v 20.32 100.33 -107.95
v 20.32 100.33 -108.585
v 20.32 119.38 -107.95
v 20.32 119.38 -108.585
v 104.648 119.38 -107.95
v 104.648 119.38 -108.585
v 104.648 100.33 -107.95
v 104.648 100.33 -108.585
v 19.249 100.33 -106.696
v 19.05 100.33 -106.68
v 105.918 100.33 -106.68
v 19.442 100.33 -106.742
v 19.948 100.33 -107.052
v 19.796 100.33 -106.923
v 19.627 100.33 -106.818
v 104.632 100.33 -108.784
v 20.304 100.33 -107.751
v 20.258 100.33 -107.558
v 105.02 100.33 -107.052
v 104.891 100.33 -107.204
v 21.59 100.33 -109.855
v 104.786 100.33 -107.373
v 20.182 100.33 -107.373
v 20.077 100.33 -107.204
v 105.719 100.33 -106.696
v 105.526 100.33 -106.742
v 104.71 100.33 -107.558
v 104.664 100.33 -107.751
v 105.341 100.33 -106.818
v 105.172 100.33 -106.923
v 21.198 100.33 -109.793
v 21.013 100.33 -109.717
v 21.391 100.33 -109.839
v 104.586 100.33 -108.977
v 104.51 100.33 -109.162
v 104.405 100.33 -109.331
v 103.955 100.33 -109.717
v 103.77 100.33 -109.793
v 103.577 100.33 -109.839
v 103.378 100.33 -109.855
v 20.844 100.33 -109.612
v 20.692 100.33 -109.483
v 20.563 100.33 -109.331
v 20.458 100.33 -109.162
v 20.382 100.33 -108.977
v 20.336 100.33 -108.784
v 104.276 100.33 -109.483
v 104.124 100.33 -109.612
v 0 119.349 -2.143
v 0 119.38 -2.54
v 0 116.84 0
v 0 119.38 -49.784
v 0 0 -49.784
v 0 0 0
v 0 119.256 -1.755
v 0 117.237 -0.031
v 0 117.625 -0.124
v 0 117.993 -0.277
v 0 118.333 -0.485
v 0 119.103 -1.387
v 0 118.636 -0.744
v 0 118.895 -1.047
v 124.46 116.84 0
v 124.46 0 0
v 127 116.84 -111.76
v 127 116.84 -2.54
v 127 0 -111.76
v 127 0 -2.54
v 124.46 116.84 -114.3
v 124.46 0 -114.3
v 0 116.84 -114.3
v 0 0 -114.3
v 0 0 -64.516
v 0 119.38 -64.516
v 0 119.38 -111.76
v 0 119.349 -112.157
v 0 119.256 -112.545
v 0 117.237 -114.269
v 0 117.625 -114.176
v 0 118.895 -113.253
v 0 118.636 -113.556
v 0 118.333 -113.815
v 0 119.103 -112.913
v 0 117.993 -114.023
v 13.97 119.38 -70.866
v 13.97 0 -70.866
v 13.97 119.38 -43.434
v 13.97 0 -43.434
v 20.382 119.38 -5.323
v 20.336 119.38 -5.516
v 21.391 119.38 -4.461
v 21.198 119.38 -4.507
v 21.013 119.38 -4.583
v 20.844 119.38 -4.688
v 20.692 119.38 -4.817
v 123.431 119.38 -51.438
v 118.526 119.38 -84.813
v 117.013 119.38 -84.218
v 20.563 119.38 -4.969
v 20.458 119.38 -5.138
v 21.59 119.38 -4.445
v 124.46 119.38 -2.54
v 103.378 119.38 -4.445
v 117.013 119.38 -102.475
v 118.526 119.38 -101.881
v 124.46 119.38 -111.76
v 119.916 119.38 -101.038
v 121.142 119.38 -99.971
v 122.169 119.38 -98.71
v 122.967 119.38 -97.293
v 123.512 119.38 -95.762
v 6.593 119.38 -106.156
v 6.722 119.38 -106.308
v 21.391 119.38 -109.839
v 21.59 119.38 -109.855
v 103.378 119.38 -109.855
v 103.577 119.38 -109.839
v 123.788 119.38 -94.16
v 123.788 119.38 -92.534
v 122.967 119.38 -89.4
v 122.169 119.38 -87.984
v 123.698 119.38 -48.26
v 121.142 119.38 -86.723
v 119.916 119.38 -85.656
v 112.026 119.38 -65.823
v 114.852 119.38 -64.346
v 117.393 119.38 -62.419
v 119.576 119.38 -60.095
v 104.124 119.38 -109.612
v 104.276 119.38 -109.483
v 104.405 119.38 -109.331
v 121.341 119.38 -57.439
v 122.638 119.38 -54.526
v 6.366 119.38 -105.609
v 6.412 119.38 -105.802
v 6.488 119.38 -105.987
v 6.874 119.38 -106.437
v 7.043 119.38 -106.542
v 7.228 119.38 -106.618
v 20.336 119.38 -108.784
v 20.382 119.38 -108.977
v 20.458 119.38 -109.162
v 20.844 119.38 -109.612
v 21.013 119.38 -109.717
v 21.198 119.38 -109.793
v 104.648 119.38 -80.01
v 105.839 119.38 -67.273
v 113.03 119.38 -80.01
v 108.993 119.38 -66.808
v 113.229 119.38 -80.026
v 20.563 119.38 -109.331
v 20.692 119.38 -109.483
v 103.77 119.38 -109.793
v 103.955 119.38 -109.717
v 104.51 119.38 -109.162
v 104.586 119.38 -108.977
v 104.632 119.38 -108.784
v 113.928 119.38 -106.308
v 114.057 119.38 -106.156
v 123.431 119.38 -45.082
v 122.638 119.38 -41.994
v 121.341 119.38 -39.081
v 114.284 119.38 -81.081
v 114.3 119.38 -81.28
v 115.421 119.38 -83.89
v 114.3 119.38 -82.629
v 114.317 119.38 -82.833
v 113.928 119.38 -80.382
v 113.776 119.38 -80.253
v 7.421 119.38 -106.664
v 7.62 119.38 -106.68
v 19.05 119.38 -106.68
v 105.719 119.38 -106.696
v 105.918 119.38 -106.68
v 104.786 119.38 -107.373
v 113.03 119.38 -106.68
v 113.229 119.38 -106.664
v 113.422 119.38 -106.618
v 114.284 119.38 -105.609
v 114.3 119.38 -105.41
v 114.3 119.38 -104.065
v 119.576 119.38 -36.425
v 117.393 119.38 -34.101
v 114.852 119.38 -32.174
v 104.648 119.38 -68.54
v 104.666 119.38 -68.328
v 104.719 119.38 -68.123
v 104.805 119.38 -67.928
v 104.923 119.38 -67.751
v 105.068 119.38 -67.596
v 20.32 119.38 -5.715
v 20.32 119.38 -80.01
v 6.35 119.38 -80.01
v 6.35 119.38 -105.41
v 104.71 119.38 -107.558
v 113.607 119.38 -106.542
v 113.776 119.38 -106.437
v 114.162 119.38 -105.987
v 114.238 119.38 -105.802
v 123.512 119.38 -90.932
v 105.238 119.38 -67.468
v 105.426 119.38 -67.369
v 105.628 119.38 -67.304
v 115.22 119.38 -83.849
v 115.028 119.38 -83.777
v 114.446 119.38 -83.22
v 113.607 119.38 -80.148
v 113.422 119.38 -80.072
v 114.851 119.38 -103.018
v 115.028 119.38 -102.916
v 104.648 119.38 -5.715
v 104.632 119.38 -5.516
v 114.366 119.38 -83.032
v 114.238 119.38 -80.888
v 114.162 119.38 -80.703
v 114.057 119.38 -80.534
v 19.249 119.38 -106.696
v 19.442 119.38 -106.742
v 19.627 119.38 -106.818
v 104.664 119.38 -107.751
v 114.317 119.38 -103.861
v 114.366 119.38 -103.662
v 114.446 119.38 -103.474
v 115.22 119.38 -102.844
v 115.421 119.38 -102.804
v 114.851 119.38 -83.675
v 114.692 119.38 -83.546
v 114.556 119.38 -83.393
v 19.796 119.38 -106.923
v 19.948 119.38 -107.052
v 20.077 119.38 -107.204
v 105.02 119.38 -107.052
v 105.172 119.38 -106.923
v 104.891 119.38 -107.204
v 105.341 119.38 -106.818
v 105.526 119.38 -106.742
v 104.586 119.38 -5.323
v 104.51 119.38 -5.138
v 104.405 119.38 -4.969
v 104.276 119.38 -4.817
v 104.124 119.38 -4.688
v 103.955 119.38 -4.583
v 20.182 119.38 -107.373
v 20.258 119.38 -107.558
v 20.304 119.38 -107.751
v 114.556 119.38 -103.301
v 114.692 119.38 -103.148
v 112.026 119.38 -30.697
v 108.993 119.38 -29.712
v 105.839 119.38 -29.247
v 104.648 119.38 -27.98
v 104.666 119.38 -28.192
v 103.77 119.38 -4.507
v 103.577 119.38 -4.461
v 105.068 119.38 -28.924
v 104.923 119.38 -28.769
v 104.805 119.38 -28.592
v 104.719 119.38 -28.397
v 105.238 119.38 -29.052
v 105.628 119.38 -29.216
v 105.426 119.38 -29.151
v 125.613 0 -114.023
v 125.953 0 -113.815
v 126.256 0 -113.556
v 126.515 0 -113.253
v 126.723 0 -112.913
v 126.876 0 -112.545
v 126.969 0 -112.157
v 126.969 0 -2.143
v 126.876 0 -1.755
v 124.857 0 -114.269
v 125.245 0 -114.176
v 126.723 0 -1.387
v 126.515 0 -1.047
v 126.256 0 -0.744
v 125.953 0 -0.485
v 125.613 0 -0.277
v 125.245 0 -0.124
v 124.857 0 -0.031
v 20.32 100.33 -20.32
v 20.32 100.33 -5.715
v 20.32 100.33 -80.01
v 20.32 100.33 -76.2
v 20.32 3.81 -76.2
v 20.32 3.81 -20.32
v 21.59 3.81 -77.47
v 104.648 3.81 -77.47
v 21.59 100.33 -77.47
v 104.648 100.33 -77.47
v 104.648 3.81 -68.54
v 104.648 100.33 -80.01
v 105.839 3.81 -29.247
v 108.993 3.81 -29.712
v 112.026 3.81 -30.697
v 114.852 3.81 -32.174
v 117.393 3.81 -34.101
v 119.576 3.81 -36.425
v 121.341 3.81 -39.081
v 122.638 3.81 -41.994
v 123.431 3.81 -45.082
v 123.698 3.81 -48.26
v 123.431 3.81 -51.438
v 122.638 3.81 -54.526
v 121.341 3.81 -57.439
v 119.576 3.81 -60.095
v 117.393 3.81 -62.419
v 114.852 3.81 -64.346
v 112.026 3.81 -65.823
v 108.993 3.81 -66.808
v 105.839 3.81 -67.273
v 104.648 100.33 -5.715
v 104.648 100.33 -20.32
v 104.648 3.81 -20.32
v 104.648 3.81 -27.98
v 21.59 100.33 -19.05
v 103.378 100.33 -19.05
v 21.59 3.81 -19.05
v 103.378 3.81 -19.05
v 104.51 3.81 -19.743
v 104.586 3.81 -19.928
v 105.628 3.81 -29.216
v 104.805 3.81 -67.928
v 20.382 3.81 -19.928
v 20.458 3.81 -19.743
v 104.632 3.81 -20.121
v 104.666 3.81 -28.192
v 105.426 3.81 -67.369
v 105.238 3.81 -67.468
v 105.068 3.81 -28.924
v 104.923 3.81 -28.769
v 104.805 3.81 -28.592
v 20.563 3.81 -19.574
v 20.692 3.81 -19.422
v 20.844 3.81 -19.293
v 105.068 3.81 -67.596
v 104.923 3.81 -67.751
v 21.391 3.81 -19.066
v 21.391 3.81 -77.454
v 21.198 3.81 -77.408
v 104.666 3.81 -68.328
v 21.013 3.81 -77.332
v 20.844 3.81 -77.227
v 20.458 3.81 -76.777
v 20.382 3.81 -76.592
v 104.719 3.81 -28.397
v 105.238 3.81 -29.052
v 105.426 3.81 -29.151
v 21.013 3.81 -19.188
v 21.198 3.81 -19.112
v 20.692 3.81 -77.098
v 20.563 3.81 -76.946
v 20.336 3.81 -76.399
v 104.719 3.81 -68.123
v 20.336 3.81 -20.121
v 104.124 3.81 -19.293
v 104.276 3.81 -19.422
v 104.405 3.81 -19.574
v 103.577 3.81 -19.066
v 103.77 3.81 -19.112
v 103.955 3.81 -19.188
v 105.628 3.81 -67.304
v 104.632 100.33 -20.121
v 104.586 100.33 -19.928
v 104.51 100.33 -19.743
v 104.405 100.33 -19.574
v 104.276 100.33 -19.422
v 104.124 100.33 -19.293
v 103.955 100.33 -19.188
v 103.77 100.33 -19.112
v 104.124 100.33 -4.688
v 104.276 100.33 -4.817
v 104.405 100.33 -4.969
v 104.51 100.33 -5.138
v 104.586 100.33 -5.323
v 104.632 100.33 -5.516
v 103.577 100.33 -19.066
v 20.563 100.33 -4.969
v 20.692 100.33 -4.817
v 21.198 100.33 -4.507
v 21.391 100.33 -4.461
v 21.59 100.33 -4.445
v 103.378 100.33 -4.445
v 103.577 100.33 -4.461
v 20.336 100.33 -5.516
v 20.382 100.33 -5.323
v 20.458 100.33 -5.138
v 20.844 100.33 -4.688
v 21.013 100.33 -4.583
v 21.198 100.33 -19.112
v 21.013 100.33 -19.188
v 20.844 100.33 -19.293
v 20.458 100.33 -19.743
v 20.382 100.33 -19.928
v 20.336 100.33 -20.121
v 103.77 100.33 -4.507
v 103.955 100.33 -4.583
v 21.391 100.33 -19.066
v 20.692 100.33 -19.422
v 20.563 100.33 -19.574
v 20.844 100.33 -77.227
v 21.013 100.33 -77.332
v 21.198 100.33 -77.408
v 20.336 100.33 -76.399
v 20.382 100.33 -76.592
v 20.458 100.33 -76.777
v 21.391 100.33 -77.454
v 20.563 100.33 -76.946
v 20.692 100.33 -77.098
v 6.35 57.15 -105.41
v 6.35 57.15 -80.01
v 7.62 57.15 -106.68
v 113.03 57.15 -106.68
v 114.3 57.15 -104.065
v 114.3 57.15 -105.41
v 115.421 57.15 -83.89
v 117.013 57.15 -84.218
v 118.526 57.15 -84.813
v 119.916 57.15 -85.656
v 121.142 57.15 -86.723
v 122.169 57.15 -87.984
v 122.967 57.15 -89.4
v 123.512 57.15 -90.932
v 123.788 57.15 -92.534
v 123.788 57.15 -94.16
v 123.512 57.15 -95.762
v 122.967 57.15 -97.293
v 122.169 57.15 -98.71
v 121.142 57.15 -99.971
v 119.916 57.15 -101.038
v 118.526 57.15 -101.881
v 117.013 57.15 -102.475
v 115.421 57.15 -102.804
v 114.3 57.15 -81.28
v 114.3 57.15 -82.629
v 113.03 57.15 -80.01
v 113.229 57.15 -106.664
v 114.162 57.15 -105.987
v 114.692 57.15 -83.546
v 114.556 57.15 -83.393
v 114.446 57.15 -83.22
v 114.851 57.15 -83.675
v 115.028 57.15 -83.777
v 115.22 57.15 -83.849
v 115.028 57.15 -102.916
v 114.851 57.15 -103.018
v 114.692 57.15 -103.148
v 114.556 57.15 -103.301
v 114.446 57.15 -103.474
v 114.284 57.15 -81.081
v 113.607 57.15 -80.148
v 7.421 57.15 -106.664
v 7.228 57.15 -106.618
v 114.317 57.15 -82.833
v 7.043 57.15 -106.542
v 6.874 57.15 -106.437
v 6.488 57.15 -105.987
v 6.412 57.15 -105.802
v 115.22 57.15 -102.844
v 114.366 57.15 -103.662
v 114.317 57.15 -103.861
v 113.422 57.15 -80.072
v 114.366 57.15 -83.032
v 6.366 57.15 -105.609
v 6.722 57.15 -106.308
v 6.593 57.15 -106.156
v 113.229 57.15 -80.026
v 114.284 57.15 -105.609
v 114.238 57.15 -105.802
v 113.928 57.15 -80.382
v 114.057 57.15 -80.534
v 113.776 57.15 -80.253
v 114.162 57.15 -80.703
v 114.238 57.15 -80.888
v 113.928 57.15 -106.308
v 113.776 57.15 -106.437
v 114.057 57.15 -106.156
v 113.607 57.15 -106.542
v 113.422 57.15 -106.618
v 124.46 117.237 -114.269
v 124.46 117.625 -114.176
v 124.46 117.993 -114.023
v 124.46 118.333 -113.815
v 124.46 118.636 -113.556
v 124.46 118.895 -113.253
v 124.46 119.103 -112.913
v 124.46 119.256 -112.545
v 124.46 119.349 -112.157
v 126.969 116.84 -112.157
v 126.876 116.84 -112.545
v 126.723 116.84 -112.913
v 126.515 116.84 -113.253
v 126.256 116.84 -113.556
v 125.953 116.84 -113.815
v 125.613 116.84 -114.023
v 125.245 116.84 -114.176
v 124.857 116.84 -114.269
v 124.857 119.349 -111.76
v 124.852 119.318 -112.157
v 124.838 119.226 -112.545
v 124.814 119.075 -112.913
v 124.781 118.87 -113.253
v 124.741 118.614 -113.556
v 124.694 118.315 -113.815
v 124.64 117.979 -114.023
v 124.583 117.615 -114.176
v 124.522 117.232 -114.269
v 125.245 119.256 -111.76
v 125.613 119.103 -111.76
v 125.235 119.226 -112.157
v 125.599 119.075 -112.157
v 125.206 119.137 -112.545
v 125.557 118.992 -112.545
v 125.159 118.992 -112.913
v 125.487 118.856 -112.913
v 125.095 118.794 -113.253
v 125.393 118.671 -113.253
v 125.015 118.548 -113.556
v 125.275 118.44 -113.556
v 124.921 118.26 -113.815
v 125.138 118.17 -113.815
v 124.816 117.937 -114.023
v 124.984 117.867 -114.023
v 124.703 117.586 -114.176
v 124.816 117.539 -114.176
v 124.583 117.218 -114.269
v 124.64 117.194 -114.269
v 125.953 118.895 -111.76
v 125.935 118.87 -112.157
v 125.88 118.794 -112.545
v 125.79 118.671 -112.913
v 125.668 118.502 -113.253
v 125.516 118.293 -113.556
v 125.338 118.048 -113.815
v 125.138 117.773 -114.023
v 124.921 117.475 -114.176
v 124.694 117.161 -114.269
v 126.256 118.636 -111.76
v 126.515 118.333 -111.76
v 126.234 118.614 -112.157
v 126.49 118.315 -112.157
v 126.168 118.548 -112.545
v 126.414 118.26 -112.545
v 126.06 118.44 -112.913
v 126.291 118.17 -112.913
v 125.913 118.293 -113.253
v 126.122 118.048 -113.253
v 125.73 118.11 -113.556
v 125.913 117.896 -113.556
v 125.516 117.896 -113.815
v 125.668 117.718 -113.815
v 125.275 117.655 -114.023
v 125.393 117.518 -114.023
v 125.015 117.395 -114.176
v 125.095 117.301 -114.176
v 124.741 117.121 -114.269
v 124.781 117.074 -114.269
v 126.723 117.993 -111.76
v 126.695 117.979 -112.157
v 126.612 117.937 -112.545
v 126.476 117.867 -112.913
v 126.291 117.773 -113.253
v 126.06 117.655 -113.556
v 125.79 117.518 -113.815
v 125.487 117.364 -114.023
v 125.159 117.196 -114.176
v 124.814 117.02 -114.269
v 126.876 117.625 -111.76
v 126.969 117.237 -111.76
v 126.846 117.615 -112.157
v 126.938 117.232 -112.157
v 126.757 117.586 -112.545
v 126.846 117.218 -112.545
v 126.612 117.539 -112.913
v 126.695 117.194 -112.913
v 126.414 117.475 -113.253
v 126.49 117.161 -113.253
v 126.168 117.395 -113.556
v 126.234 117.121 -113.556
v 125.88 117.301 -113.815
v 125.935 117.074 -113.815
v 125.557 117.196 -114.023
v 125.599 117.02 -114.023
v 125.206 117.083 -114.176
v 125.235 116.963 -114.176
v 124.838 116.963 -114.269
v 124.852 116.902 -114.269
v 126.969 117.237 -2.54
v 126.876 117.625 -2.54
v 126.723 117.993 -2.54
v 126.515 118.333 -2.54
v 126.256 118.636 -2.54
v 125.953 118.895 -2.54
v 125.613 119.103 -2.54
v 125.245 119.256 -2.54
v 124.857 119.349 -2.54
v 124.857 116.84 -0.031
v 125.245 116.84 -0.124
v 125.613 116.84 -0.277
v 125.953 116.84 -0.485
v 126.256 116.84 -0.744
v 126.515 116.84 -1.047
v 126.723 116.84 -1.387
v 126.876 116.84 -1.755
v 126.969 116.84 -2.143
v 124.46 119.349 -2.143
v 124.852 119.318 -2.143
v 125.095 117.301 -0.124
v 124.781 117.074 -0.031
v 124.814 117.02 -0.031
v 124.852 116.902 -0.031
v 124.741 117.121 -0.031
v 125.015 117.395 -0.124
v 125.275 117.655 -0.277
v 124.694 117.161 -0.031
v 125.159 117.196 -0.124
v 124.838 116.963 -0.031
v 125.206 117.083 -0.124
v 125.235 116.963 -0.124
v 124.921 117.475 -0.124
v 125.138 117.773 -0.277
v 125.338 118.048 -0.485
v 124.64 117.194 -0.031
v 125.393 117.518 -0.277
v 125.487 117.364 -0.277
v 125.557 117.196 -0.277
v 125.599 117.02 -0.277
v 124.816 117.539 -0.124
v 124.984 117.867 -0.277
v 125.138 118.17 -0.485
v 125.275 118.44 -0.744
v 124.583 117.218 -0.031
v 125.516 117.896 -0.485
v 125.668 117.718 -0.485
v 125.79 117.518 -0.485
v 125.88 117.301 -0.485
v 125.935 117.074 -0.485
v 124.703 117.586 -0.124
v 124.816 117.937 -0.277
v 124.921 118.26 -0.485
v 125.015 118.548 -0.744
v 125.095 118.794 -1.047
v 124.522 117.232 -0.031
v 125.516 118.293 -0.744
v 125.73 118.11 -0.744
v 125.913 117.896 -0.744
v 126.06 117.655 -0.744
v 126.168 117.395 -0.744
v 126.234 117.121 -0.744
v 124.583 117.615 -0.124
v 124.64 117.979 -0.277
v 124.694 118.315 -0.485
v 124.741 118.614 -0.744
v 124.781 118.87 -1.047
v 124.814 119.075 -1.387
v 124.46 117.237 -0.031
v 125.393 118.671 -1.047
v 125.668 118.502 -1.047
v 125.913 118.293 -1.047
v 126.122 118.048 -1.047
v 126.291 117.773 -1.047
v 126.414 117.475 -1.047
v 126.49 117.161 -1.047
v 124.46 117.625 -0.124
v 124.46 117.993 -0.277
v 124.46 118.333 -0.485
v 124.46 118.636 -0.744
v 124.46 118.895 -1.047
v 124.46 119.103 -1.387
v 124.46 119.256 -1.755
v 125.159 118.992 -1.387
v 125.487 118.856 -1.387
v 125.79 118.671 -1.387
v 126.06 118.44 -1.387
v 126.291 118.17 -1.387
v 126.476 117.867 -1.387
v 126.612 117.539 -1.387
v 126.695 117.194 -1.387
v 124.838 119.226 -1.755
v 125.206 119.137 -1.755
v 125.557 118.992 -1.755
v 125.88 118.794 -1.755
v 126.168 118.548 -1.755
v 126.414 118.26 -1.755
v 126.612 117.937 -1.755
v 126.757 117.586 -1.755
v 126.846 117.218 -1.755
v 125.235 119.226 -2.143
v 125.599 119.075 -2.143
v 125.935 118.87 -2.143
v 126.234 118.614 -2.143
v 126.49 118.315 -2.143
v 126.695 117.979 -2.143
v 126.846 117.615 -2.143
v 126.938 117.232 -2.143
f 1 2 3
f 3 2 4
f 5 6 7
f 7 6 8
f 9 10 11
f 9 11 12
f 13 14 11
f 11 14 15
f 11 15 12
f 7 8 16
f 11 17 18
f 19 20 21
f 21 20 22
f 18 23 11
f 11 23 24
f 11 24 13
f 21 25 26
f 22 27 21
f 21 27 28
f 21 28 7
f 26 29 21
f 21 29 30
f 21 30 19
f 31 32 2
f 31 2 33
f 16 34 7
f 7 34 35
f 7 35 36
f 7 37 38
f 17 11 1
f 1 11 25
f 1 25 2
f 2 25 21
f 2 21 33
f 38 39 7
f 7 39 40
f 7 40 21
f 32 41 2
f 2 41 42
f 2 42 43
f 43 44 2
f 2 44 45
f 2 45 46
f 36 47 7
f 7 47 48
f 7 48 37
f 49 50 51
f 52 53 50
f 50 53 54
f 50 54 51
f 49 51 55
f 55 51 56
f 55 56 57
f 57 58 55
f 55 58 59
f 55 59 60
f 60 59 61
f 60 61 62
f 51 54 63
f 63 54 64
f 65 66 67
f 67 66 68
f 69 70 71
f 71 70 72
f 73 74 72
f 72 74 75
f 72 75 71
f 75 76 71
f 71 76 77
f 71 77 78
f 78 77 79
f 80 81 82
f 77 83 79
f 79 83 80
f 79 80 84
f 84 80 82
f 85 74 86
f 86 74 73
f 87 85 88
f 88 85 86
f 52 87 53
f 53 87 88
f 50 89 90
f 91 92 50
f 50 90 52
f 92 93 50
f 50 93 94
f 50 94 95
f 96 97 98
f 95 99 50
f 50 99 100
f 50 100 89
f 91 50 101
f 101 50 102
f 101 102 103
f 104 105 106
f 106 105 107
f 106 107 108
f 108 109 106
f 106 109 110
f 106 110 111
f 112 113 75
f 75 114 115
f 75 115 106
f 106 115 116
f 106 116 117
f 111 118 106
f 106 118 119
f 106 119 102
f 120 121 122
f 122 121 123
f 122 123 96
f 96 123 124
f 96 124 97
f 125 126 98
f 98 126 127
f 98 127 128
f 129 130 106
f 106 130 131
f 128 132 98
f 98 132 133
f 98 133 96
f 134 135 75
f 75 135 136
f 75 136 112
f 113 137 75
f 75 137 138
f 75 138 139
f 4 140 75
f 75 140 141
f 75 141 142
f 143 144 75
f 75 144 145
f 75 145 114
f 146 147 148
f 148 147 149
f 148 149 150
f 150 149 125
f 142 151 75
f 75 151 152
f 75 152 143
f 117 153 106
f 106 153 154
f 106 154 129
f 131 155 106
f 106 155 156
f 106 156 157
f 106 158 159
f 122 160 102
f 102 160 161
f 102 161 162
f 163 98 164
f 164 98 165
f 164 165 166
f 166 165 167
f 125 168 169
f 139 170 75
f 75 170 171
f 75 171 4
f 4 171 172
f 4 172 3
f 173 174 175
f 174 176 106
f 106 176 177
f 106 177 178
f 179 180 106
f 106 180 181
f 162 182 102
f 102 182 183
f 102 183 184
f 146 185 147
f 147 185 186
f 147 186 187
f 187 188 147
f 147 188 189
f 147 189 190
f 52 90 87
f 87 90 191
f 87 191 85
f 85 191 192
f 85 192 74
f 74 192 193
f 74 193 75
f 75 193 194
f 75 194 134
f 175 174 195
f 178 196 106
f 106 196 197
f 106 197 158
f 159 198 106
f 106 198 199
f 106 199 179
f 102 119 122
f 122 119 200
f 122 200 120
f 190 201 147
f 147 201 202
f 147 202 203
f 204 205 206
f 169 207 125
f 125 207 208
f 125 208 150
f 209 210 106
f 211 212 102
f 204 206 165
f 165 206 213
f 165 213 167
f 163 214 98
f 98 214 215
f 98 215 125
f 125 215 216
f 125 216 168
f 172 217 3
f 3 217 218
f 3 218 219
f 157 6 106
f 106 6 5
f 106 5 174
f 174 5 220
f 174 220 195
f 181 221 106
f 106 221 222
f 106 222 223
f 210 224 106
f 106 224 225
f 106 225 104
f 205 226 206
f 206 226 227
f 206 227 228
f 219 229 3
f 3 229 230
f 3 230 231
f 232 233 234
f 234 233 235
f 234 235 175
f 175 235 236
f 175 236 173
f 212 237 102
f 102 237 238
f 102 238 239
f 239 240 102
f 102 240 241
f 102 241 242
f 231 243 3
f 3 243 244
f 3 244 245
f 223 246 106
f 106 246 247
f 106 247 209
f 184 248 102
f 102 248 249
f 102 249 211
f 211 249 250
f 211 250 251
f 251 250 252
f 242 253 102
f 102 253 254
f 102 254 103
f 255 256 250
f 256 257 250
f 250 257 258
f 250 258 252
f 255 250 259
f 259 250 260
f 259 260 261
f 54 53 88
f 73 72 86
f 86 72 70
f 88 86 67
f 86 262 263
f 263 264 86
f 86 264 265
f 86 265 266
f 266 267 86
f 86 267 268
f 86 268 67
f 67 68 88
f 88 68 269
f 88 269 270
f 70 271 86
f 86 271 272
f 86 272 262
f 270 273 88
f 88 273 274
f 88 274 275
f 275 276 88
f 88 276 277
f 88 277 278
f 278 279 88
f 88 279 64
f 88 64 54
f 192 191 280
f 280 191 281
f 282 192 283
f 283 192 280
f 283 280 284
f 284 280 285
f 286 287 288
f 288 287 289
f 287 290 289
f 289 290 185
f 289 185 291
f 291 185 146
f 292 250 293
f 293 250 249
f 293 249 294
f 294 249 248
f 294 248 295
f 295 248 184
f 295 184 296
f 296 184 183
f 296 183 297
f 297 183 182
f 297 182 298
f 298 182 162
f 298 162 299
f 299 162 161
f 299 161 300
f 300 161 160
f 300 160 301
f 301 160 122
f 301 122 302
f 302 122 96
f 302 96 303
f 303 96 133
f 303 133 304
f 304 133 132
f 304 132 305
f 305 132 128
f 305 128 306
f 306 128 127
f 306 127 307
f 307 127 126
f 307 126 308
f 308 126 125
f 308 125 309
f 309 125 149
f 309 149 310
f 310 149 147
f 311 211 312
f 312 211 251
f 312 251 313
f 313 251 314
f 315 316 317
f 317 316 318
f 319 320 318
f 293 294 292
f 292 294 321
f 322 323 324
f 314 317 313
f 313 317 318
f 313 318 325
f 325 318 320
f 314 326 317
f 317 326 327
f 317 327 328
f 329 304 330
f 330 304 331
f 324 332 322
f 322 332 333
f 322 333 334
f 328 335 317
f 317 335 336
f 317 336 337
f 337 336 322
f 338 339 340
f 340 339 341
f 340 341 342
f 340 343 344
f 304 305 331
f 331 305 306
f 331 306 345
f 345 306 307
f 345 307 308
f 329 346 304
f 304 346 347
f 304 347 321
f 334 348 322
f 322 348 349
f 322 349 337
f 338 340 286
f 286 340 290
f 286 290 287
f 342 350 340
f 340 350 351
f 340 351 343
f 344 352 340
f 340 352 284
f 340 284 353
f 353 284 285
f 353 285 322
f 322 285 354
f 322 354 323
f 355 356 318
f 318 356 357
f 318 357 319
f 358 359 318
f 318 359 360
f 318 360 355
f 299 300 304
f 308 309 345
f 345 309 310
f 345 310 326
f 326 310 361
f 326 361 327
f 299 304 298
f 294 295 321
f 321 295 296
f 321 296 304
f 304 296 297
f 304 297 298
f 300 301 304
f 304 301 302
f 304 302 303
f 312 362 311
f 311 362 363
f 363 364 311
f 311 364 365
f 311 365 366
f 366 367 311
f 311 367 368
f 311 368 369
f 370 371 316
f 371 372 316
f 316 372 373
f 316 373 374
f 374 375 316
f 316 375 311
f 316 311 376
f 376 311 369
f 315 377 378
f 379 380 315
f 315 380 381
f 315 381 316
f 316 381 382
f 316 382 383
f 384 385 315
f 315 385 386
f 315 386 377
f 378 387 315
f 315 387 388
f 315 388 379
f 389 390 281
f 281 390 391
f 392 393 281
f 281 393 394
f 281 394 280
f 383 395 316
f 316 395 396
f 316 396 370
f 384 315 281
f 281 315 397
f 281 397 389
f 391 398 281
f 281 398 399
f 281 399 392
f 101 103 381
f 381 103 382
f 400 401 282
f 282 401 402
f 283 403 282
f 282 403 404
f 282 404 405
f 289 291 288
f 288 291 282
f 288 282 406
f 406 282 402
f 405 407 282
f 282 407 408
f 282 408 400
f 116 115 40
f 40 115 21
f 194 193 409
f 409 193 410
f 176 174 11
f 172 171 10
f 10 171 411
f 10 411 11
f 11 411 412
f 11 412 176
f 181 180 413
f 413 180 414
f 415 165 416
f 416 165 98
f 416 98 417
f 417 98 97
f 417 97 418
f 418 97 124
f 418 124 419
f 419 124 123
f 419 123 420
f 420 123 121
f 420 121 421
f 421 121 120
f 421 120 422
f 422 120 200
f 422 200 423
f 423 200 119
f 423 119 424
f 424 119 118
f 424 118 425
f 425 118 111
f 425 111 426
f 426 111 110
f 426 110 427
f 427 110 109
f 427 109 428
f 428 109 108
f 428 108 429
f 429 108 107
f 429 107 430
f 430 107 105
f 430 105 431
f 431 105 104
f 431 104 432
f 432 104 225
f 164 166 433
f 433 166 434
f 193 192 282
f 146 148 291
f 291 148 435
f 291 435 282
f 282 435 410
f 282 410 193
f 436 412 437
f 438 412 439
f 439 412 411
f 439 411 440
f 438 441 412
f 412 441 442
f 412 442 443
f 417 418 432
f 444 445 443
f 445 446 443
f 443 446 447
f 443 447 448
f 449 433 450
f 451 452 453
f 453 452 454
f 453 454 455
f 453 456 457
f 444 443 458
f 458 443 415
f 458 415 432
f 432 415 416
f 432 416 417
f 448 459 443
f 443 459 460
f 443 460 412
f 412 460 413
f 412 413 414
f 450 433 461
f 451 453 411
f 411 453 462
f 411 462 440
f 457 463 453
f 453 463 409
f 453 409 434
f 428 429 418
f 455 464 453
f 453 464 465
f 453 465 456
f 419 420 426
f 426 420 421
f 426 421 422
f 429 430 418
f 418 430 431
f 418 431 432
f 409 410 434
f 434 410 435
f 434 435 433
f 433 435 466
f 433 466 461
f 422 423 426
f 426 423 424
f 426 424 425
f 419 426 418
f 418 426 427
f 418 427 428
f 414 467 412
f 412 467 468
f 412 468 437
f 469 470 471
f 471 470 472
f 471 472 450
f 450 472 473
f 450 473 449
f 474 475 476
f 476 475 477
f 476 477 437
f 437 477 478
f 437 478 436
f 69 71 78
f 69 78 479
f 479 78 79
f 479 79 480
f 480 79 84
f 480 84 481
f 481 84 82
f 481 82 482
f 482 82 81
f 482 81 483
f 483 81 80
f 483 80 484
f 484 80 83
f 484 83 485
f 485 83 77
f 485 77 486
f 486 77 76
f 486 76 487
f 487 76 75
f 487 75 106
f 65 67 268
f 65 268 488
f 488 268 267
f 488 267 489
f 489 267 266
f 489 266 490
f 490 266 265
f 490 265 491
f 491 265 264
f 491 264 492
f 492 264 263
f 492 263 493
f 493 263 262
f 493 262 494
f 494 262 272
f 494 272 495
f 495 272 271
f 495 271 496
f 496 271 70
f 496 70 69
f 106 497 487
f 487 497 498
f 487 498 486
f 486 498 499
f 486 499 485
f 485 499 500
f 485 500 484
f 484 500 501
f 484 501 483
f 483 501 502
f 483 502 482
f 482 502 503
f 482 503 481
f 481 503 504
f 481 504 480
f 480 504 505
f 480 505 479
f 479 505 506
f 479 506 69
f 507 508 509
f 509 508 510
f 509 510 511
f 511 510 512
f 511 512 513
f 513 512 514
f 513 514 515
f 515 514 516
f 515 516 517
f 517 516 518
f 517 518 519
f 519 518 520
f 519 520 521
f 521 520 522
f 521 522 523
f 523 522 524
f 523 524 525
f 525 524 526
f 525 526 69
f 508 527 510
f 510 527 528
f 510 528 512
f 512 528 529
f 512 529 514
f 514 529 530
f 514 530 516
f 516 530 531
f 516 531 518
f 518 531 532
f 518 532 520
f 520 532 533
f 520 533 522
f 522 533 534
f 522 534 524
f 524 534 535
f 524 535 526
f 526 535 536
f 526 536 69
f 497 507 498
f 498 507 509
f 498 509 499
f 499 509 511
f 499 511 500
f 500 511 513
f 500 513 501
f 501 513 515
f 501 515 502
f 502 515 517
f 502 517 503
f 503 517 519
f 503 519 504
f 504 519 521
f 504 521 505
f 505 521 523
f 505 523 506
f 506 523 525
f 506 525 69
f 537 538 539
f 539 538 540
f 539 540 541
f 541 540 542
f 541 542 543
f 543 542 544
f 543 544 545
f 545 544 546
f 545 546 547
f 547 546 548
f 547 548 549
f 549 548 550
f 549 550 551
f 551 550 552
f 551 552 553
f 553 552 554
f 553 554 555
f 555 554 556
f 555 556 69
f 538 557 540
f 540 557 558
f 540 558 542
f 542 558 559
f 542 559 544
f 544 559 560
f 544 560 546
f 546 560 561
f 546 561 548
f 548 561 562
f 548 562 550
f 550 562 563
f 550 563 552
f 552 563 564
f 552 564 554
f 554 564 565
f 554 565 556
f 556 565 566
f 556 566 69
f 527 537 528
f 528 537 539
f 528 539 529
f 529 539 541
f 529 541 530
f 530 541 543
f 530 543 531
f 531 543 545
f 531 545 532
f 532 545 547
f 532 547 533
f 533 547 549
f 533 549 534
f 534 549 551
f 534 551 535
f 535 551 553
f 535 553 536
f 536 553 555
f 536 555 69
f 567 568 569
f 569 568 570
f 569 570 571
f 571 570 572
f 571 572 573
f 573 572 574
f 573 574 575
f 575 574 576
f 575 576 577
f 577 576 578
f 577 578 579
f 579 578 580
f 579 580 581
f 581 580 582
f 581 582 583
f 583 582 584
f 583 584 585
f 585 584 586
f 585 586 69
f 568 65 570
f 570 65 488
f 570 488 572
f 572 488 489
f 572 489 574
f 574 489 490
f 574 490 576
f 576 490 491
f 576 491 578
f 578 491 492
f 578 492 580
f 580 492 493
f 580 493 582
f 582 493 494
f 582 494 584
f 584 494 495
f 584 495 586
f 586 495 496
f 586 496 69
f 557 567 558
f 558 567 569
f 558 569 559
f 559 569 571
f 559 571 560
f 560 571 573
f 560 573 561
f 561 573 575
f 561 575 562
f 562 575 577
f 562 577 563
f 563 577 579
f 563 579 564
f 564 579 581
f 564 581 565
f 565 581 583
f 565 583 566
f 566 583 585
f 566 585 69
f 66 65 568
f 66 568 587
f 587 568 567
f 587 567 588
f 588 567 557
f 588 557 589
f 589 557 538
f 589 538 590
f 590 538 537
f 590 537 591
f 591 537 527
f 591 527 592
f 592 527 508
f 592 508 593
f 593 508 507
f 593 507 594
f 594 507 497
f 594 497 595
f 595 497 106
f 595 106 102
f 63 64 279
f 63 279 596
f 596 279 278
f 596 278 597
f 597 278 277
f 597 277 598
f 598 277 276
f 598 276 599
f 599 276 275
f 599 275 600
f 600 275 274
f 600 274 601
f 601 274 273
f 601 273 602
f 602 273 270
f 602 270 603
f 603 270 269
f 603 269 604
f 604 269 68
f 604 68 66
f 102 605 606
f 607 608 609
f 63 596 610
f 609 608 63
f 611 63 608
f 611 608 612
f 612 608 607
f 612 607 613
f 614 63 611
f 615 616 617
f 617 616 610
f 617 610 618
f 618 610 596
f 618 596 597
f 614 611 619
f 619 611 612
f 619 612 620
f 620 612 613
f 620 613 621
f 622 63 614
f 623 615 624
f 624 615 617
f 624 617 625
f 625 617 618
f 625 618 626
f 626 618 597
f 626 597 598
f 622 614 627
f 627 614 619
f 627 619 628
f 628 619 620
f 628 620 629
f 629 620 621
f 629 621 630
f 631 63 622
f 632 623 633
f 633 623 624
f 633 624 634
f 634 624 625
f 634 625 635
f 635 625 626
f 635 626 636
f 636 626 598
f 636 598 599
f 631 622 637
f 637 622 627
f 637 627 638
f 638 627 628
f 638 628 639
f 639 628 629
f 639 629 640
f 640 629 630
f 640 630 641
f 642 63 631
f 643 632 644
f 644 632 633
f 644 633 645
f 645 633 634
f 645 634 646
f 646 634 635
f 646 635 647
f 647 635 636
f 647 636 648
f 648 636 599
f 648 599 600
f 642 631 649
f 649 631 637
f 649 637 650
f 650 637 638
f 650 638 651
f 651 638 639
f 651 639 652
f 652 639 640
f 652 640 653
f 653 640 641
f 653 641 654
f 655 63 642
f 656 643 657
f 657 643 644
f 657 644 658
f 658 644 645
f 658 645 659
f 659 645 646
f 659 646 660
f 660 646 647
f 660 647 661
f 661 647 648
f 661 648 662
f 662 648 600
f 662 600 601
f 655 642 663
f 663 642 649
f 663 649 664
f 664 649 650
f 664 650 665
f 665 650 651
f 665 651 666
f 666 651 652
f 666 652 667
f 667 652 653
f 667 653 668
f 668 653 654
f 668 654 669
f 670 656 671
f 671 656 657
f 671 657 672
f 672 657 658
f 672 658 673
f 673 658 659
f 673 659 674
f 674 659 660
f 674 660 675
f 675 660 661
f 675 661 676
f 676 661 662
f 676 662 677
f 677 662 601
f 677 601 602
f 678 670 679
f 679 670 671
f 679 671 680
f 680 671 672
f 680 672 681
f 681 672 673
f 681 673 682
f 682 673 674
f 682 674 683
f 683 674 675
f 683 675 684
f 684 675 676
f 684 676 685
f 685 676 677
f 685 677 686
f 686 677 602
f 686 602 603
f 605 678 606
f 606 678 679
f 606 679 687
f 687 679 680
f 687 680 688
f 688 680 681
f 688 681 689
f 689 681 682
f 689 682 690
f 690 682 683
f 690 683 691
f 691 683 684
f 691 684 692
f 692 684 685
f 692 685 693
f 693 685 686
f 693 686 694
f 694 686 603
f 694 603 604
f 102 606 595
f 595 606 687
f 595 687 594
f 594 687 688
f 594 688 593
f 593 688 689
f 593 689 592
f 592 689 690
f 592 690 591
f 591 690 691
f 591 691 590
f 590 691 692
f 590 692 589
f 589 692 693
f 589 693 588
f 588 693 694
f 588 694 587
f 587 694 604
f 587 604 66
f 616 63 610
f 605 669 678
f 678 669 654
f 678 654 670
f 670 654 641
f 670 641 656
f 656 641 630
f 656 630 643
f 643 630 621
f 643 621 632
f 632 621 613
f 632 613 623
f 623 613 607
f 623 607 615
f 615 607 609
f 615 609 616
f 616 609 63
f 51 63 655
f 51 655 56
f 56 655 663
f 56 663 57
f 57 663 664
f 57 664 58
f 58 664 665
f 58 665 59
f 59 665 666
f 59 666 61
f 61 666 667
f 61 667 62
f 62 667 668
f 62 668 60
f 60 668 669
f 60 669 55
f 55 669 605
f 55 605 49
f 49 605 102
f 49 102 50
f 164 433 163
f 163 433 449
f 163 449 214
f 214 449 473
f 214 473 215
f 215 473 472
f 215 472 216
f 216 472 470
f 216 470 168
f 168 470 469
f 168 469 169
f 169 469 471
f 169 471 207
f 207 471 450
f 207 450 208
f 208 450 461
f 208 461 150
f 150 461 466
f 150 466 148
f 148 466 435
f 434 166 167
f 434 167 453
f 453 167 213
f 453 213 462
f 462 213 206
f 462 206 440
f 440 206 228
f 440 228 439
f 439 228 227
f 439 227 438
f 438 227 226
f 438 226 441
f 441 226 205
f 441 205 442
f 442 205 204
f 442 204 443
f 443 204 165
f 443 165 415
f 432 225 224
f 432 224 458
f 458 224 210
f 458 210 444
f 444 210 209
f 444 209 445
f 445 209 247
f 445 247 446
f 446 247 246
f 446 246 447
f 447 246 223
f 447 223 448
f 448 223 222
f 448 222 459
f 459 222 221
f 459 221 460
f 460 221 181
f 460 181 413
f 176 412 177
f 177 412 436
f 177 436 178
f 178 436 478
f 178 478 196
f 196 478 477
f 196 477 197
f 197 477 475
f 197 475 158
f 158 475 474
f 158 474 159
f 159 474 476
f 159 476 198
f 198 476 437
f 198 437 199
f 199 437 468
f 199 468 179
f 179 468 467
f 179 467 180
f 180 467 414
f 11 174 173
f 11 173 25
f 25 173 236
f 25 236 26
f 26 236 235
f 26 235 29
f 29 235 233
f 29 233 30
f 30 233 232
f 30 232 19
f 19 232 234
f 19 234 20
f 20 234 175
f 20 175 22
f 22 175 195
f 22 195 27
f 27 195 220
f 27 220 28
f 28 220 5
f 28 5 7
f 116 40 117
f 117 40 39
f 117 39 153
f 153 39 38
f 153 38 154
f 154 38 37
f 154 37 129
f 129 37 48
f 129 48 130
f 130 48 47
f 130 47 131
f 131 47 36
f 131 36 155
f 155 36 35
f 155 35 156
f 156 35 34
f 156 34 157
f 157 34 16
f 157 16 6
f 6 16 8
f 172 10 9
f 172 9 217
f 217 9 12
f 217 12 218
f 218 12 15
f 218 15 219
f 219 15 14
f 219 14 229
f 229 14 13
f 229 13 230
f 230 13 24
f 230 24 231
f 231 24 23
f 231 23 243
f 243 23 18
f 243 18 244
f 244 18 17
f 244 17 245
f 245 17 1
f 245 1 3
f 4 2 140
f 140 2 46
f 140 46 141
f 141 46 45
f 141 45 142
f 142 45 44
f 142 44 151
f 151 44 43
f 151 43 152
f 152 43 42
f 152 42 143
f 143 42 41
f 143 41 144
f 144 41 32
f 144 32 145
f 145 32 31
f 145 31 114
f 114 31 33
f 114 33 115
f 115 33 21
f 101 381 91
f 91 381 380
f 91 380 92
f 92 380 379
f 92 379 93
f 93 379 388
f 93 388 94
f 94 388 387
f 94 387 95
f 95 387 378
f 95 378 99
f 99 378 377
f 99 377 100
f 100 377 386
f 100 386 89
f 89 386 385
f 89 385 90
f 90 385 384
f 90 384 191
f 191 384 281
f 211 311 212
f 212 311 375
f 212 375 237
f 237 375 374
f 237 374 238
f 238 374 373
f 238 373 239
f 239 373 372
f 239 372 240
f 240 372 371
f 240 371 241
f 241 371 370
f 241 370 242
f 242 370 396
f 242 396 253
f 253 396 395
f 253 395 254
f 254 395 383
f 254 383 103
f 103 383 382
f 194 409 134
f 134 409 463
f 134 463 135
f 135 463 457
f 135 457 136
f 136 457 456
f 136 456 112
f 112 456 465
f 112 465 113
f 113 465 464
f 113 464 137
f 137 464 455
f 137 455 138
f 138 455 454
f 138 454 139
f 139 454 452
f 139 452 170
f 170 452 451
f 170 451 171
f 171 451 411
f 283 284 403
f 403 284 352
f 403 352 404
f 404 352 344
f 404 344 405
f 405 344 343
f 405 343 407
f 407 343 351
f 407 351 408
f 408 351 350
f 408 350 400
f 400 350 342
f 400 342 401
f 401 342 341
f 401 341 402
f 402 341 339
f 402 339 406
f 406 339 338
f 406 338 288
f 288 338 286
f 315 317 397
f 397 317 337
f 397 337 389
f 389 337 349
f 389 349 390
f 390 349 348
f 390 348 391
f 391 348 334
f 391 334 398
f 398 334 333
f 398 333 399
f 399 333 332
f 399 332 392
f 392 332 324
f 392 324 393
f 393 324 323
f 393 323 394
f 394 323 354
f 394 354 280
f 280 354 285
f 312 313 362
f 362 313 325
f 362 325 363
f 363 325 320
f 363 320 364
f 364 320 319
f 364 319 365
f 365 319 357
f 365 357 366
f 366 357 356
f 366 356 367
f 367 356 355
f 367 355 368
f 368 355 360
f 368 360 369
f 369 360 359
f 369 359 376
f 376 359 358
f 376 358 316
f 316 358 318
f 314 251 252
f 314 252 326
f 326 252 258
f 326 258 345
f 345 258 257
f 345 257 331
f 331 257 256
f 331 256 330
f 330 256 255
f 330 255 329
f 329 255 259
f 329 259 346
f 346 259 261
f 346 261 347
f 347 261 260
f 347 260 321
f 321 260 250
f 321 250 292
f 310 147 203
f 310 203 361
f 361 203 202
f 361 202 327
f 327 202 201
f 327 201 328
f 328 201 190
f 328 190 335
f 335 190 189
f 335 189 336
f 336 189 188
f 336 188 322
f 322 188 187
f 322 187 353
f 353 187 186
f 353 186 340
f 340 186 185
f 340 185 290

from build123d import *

# Parameters (mm, degrees)
BOSS_EXTRUDE1_DEPTH = 119.38
CUT_EXTRUDE1_DEPTH  = 115.57
SKETCH5_W           = 84.328
SKETCH5_H           = 105.41
CUT_EXTRUDE4_DEPTH  = 19.05
CUT_EXTRUDE5_START  = -24.13
CUT_EXTRUDE5_DEPTH  = 43.18
CUT_EXTRUDE6_DEPTH  = 43.18
FILLET2_R           = 2.54
FILLET3_R           = 1.27


with BuildPart() as part:
    # Sketch1 → Boss-Extrude1 (new body)
    with BuildSketch(Plane(origin=(0, 0, 0), x_dir=(1, 0, 0), z_dir=(0, 1, 0))):
        Polygon((0, 64.516), (13.97, 70.866), (13.97, 43.434), (0, 49.784), (0, 0), (127, 0), (127, 114.3), (0, 114.3), align=None)
    extrude(amount=BOSS_EXTRUDE1_DEPTH)

    # Sketch2 → Cut-Extrude1 (cut)
    with BuildSketch(Plane(origin=(0, 119.38, 0), x_dir=(1, 0, 0), z_dir=(0, 1, 0))):
        with BuildLine():
            Line((20.32, 77.47), (104.648, 77.47))
            Line((104.648, 77.47), (104.648, 67.31))
            ThreePointArc((104.648, 67.31), (123.698, 48.26), (104.648, 29.21))
            Line((104.648, 29.21), (104.648, 19.05))
            Line((104.648, 19.05), (20.32, 19.05))
            Line((20.32, 19.05), (20.32, 77.47))
        make_face()
    extrude(amount=-CUT_EXTRUDE1_DEPTH, mode=Mode.SUBTRACT)

    # Sketch5 → Cut-Extrude4 (cut)
    with BuildSketch(Plane(origin=(0, 119.38, 0), x_dir=(1, 0, 0), z_dir=(0, 1, 0))):
        with Locations((62.484, 57.15)):
            Rectangle(SKETCH5_W, SKETCH5_H)
    extrude(amount=-CUT_EXTRUDE4_DEPTH, mode=Mode.SUBTRACT)

    # Sketch6 → Cut-Extrude5 (cut)
    with BuildSketch(Plane(origin=(0, 100.33, 0), x_dir=(1, 0, 0), z_dir=(0, 1, 0)).offset(CUT_EXTRUDE5_START)):
        with BuildLine():
            Line((6.35, 106.68), (114.3, 106.68))
            Line((114.3, 106.68), (114.3, 102.87))
            ThreePointArc((114.3, 102.87), (123.823120388, 93.346879612), (114.3, 83.823759224))
            Line((114.3, 83.823759224), (114.3, 80.01))
            Line((114.3, 80.01), (6.35, 80.01))
            Line((6.35, 80.01), (6.35, 106.68))
        make_face()
    extrude(amount=CUT_EXTRUDE5_DEPTH, mode=Mode.SUBTRACT)

    # Sketch6<2> → Cut-Extrude6 (cut)
    with BuildSketch(Plane(origin=(0, 100.33, 0), x_dir=(1, 0, 0), z_dir=(0, 1, 0))):
        with BuildLine():
            Line((6.35, 106.68), (114.3, 106.68))
            Line((114.3, 106.68), (114.3, 102.87))
            ThreePointArc((114.3, 102.87), (123.823120388, 93.346879612), (114.3, 83.823759224))
            Line((114.3, 83.823759224), (114.3, 80.01))
            Line((114.3, 80.01), (6.35, 80.01))
            Line((6.35, 80.01), (6.35, 106.68))
        make_face()
    extrude(amount=-CUT_EXTRUDE6_DEPTH, mode=Mode.SUBTRACT)

    # Fillet2
    fillet2_edges = [part.edges().sort_by_distance(p)[0] for p in [
        (127, 119.38, -57.15),
        (127, 59.69, -114.3),
        (127, 59.69, 0),
        (63.5, 119.38, -114.3),
        (63.5, 119.38, 0),
    ]]
    fillet(fillet2_edges, radius=FILLET2_R)

    # Fillet3
    fillet3_edges = [part.edges().sort_by_distance(p)[0] for p in [
        (20.32, 52.07, -19.05),
        (20.32, 52.07, -77.47),
        (104.648, 61.595, -67.31),
        (104.648, 61.595, -29.21),
        (104.648, 52.07, -19.05),
        (20.32, 109.855, -4.445),
        (104.648, 109.855, -109.855),
        (20.32, 109.855, -109.855),
        (104.648, 109.855, -4.445),
        (104.648, 109.855, -106.68),
        (6.35, 88.265, -106.68),
        (20.32, 109.855, -106.68),
        (114.3, 88.265, -106.68),
        (114.3, 88.265, -102.87),
        (114.3, 88.265, -83.823759224),
        (114.3, 88.265, -80.01),
    ]]
    fillet(fillet3_edges, radius=FILLET3_R)


solid = part.part
